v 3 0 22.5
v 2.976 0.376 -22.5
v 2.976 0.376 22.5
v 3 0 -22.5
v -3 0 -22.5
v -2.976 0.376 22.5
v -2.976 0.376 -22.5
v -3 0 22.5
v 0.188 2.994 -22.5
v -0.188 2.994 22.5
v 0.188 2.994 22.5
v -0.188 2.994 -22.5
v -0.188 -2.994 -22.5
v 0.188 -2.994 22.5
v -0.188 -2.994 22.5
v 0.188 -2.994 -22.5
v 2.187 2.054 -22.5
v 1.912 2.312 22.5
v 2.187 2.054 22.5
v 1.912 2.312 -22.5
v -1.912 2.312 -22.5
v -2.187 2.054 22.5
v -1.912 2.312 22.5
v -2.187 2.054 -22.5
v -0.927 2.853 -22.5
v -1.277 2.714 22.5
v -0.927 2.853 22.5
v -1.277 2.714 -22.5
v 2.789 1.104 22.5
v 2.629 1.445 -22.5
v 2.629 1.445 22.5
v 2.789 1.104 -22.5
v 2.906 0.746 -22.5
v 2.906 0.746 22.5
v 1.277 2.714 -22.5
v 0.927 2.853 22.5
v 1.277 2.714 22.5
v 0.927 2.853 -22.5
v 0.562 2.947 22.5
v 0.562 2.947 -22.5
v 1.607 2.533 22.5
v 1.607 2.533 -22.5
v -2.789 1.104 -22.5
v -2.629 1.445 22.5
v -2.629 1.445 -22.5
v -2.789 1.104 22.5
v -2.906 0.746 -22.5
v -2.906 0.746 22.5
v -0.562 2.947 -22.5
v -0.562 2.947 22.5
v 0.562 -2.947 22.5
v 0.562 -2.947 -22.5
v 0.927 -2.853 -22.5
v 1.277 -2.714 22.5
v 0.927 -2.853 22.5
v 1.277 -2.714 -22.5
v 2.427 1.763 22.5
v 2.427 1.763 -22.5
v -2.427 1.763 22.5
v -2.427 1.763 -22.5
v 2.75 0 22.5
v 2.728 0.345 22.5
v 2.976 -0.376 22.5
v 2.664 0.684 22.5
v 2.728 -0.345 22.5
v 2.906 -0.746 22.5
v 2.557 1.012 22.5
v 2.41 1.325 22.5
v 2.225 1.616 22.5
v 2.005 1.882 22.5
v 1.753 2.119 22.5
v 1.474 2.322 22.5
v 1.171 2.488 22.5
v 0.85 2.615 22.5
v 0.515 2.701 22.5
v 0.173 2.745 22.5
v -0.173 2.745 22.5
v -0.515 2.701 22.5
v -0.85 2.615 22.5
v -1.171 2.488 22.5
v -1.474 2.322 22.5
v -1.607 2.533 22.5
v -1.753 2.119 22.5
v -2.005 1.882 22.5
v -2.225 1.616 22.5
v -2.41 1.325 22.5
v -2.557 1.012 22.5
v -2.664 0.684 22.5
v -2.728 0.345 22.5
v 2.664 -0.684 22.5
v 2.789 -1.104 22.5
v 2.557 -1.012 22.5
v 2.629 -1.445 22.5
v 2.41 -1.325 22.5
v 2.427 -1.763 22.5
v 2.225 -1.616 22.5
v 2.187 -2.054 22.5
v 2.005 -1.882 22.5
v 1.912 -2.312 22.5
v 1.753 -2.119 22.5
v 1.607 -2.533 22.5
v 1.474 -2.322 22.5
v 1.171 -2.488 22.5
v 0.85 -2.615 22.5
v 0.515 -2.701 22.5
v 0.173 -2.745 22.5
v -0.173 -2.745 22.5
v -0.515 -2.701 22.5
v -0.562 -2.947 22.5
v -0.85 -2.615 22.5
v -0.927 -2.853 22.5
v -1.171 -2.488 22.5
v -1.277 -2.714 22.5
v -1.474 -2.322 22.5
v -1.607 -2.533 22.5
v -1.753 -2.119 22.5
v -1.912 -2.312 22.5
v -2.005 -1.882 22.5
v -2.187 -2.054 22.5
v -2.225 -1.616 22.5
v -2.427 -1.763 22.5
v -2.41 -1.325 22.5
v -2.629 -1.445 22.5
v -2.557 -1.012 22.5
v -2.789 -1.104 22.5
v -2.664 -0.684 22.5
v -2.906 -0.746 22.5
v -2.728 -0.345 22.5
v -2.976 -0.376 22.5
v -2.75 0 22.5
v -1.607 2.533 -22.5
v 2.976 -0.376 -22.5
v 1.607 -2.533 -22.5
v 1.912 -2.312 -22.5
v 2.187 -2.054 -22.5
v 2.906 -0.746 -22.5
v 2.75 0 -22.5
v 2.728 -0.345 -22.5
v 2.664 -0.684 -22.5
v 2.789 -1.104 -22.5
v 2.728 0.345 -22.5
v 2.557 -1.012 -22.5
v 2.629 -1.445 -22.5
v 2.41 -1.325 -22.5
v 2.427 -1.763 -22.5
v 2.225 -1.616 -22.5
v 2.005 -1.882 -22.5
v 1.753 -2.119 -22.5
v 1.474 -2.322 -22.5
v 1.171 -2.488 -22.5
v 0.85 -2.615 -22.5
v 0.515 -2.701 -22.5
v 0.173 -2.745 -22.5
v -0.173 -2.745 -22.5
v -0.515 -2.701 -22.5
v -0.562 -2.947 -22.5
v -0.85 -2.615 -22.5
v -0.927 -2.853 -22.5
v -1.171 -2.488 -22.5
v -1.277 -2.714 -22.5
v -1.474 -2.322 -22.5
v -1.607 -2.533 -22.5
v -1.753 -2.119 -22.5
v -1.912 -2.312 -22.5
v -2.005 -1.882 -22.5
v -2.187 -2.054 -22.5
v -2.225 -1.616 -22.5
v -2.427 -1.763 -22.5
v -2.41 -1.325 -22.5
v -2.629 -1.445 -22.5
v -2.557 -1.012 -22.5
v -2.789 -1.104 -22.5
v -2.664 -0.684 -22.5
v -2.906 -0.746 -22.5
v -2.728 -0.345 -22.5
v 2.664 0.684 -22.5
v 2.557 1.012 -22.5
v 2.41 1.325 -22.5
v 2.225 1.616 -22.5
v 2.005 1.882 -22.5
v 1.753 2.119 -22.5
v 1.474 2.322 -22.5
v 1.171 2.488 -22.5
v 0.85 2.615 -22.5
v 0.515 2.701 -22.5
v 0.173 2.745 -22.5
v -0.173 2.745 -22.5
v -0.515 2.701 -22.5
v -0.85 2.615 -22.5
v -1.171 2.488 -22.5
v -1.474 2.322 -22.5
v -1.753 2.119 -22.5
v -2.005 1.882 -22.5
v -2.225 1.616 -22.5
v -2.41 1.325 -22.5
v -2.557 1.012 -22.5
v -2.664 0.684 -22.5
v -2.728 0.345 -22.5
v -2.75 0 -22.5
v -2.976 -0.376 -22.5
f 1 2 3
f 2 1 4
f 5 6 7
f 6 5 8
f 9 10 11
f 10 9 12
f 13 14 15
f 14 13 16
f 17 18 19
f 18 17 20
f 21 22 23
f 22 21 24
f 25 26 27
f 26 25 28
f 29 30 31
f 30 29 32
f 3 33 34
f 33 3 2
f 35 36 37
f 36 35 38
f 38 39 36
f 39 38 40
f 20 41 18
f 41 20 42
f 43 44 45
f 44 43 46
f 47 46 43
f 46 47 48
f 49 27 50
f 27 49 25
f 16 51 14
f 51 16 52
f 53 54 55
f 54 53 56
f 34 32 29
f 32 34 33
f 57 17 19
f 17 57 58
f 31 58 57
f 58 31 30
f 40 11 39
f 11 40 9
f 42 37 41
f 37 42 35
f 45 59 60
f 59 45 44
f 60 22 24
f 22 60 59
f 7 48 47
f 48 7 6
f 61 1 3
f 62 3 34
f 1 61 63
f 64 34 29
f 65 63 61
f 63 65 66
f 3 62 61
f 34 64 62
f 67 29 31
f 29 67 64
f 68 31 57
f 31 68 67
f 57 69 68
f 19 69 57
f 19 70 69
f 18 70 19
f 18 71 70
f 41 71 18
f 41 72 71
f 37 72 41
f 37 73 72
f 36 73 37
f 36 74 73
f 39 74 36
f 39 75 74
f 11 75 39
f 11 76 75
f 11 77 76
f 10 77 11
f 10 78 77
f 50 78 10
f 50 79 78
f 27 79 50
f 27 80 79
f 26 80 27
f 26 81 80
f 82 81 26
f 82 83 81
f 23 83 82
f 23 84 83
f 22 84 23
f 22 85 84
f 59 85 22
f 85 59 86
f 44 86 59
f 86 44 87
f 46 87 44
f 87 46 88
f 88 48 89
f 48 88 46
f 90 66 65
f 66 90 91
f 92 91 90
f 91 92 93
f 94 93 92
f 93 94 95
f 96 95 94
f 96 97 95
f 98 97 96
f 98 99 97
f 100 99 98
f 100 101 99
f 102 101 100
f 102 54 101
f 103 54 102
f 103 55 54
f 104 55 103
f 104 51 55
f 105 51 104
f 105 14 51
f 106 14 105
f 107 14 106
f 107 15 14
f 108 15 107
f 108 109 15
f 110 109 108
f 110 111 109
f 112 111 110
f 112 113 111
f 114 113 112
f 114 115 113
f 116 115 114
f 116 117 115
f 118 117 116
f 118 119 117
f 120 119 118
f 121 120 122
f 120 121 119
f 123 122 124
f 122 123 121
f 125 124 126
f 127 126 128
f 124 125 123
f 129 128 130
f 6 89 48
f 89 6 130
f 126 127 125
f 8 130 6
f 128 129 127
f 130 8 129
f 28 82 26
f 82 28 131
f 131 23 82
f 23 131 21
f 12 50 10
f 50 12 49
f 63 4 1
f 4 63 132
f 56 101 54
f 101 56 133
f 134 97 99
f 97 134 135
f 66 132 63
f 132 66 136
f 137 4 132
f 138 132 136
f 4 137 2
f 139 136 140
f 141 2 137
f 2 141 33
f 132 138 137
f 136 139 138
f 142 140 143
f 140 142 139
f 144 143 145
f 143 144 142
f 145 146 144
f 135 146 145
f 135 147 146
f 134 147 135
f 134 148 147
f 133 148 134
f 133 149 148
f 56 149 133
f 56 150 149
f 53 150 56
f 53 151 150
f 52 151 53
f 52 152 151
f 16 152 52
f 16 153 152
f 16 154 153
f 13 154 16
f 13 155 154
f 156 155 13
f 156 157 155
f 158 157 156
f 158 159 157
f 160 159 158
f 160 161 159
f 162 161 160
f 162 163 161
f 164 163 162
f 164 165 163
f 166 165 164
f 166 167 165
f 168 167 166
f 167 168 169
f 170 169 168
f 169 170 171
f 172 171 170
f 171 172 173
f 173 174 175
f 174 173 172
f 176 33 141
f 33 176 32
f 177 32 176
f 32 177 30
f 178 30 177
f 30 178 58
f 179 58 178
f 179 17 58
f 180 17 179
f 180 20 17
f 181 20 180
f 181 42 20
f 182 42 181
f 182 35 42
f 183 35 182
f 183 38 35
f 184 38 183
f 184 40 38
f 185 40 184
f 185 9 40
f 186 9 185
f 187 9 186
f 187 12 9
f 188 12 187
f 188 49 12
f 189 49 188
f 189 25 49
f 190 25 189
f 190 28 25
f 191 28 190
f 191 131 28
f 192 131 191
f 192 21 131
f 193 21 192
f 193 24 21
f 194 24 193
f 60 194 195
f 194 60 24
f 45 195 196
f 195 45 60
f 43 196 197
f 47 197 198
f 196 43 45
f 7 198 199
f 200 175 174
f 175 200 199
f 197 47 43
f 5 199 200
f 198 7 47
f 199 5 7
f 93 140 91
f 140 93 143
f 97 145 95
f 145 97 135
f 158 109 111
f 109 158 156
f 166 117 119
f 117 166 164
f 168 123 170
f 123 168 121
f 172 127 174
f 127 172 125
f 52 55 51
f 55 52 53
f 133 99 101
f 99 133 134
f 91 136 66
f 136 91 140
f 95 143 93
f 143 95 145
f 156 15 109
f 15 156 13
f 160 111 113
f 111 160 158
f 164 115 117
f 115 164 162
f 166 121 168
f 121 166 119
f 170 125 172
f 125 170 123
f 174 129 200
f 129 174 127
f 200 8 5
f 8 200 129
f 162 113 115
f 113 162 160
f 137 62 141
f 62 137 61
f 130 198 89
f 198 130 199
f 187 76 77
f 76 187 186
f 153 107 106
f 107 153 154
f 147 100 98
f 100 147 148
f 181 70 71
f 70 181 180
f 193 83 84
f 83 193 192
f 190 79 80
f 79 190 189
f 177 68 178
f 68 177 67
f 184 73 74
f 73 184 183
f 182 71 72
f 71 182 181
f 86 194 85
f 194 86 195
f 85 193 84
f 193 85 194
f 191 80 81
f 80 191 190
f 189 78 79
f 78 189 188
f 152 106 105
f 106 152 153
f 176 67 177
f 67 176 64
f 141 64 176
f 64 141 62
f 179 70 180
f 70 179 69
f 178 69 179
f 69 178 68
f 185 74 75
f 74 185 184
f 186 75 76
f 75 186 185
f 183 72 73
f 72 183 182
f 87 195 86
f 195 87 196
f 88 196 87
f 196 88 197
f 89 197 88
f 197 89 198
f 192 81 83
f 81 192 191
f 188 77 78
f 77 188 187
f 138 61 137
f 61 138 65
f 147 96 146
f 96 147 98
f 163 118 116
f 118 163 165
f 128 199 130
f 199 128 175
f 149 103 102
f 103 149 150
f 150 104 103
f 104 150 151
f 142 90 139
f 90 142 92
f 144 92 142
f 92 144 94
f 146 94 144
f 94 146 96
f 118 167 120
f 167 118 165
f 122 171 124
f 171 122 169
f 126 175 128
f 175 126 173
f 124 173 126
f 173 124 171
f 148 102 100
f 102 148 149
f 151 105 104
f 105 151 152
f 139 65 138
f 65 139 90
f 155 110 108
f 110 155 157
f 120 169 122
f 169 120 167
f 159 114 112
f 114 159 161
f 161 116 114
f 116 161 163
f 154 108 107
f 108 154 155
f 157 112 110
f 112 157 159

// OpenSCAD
$fn = 50;


difference() {
	union() {
		translate(v = [0, 0, -22.5000000000]) {
			cylinder(h = 45, r = 3.0000000000);
		}
	}
	union() {
		translate(v = [0, 0, -100.0000000000]) {
			cylinder(h = 200, r = 2.7500000000);
		}
	}
}
